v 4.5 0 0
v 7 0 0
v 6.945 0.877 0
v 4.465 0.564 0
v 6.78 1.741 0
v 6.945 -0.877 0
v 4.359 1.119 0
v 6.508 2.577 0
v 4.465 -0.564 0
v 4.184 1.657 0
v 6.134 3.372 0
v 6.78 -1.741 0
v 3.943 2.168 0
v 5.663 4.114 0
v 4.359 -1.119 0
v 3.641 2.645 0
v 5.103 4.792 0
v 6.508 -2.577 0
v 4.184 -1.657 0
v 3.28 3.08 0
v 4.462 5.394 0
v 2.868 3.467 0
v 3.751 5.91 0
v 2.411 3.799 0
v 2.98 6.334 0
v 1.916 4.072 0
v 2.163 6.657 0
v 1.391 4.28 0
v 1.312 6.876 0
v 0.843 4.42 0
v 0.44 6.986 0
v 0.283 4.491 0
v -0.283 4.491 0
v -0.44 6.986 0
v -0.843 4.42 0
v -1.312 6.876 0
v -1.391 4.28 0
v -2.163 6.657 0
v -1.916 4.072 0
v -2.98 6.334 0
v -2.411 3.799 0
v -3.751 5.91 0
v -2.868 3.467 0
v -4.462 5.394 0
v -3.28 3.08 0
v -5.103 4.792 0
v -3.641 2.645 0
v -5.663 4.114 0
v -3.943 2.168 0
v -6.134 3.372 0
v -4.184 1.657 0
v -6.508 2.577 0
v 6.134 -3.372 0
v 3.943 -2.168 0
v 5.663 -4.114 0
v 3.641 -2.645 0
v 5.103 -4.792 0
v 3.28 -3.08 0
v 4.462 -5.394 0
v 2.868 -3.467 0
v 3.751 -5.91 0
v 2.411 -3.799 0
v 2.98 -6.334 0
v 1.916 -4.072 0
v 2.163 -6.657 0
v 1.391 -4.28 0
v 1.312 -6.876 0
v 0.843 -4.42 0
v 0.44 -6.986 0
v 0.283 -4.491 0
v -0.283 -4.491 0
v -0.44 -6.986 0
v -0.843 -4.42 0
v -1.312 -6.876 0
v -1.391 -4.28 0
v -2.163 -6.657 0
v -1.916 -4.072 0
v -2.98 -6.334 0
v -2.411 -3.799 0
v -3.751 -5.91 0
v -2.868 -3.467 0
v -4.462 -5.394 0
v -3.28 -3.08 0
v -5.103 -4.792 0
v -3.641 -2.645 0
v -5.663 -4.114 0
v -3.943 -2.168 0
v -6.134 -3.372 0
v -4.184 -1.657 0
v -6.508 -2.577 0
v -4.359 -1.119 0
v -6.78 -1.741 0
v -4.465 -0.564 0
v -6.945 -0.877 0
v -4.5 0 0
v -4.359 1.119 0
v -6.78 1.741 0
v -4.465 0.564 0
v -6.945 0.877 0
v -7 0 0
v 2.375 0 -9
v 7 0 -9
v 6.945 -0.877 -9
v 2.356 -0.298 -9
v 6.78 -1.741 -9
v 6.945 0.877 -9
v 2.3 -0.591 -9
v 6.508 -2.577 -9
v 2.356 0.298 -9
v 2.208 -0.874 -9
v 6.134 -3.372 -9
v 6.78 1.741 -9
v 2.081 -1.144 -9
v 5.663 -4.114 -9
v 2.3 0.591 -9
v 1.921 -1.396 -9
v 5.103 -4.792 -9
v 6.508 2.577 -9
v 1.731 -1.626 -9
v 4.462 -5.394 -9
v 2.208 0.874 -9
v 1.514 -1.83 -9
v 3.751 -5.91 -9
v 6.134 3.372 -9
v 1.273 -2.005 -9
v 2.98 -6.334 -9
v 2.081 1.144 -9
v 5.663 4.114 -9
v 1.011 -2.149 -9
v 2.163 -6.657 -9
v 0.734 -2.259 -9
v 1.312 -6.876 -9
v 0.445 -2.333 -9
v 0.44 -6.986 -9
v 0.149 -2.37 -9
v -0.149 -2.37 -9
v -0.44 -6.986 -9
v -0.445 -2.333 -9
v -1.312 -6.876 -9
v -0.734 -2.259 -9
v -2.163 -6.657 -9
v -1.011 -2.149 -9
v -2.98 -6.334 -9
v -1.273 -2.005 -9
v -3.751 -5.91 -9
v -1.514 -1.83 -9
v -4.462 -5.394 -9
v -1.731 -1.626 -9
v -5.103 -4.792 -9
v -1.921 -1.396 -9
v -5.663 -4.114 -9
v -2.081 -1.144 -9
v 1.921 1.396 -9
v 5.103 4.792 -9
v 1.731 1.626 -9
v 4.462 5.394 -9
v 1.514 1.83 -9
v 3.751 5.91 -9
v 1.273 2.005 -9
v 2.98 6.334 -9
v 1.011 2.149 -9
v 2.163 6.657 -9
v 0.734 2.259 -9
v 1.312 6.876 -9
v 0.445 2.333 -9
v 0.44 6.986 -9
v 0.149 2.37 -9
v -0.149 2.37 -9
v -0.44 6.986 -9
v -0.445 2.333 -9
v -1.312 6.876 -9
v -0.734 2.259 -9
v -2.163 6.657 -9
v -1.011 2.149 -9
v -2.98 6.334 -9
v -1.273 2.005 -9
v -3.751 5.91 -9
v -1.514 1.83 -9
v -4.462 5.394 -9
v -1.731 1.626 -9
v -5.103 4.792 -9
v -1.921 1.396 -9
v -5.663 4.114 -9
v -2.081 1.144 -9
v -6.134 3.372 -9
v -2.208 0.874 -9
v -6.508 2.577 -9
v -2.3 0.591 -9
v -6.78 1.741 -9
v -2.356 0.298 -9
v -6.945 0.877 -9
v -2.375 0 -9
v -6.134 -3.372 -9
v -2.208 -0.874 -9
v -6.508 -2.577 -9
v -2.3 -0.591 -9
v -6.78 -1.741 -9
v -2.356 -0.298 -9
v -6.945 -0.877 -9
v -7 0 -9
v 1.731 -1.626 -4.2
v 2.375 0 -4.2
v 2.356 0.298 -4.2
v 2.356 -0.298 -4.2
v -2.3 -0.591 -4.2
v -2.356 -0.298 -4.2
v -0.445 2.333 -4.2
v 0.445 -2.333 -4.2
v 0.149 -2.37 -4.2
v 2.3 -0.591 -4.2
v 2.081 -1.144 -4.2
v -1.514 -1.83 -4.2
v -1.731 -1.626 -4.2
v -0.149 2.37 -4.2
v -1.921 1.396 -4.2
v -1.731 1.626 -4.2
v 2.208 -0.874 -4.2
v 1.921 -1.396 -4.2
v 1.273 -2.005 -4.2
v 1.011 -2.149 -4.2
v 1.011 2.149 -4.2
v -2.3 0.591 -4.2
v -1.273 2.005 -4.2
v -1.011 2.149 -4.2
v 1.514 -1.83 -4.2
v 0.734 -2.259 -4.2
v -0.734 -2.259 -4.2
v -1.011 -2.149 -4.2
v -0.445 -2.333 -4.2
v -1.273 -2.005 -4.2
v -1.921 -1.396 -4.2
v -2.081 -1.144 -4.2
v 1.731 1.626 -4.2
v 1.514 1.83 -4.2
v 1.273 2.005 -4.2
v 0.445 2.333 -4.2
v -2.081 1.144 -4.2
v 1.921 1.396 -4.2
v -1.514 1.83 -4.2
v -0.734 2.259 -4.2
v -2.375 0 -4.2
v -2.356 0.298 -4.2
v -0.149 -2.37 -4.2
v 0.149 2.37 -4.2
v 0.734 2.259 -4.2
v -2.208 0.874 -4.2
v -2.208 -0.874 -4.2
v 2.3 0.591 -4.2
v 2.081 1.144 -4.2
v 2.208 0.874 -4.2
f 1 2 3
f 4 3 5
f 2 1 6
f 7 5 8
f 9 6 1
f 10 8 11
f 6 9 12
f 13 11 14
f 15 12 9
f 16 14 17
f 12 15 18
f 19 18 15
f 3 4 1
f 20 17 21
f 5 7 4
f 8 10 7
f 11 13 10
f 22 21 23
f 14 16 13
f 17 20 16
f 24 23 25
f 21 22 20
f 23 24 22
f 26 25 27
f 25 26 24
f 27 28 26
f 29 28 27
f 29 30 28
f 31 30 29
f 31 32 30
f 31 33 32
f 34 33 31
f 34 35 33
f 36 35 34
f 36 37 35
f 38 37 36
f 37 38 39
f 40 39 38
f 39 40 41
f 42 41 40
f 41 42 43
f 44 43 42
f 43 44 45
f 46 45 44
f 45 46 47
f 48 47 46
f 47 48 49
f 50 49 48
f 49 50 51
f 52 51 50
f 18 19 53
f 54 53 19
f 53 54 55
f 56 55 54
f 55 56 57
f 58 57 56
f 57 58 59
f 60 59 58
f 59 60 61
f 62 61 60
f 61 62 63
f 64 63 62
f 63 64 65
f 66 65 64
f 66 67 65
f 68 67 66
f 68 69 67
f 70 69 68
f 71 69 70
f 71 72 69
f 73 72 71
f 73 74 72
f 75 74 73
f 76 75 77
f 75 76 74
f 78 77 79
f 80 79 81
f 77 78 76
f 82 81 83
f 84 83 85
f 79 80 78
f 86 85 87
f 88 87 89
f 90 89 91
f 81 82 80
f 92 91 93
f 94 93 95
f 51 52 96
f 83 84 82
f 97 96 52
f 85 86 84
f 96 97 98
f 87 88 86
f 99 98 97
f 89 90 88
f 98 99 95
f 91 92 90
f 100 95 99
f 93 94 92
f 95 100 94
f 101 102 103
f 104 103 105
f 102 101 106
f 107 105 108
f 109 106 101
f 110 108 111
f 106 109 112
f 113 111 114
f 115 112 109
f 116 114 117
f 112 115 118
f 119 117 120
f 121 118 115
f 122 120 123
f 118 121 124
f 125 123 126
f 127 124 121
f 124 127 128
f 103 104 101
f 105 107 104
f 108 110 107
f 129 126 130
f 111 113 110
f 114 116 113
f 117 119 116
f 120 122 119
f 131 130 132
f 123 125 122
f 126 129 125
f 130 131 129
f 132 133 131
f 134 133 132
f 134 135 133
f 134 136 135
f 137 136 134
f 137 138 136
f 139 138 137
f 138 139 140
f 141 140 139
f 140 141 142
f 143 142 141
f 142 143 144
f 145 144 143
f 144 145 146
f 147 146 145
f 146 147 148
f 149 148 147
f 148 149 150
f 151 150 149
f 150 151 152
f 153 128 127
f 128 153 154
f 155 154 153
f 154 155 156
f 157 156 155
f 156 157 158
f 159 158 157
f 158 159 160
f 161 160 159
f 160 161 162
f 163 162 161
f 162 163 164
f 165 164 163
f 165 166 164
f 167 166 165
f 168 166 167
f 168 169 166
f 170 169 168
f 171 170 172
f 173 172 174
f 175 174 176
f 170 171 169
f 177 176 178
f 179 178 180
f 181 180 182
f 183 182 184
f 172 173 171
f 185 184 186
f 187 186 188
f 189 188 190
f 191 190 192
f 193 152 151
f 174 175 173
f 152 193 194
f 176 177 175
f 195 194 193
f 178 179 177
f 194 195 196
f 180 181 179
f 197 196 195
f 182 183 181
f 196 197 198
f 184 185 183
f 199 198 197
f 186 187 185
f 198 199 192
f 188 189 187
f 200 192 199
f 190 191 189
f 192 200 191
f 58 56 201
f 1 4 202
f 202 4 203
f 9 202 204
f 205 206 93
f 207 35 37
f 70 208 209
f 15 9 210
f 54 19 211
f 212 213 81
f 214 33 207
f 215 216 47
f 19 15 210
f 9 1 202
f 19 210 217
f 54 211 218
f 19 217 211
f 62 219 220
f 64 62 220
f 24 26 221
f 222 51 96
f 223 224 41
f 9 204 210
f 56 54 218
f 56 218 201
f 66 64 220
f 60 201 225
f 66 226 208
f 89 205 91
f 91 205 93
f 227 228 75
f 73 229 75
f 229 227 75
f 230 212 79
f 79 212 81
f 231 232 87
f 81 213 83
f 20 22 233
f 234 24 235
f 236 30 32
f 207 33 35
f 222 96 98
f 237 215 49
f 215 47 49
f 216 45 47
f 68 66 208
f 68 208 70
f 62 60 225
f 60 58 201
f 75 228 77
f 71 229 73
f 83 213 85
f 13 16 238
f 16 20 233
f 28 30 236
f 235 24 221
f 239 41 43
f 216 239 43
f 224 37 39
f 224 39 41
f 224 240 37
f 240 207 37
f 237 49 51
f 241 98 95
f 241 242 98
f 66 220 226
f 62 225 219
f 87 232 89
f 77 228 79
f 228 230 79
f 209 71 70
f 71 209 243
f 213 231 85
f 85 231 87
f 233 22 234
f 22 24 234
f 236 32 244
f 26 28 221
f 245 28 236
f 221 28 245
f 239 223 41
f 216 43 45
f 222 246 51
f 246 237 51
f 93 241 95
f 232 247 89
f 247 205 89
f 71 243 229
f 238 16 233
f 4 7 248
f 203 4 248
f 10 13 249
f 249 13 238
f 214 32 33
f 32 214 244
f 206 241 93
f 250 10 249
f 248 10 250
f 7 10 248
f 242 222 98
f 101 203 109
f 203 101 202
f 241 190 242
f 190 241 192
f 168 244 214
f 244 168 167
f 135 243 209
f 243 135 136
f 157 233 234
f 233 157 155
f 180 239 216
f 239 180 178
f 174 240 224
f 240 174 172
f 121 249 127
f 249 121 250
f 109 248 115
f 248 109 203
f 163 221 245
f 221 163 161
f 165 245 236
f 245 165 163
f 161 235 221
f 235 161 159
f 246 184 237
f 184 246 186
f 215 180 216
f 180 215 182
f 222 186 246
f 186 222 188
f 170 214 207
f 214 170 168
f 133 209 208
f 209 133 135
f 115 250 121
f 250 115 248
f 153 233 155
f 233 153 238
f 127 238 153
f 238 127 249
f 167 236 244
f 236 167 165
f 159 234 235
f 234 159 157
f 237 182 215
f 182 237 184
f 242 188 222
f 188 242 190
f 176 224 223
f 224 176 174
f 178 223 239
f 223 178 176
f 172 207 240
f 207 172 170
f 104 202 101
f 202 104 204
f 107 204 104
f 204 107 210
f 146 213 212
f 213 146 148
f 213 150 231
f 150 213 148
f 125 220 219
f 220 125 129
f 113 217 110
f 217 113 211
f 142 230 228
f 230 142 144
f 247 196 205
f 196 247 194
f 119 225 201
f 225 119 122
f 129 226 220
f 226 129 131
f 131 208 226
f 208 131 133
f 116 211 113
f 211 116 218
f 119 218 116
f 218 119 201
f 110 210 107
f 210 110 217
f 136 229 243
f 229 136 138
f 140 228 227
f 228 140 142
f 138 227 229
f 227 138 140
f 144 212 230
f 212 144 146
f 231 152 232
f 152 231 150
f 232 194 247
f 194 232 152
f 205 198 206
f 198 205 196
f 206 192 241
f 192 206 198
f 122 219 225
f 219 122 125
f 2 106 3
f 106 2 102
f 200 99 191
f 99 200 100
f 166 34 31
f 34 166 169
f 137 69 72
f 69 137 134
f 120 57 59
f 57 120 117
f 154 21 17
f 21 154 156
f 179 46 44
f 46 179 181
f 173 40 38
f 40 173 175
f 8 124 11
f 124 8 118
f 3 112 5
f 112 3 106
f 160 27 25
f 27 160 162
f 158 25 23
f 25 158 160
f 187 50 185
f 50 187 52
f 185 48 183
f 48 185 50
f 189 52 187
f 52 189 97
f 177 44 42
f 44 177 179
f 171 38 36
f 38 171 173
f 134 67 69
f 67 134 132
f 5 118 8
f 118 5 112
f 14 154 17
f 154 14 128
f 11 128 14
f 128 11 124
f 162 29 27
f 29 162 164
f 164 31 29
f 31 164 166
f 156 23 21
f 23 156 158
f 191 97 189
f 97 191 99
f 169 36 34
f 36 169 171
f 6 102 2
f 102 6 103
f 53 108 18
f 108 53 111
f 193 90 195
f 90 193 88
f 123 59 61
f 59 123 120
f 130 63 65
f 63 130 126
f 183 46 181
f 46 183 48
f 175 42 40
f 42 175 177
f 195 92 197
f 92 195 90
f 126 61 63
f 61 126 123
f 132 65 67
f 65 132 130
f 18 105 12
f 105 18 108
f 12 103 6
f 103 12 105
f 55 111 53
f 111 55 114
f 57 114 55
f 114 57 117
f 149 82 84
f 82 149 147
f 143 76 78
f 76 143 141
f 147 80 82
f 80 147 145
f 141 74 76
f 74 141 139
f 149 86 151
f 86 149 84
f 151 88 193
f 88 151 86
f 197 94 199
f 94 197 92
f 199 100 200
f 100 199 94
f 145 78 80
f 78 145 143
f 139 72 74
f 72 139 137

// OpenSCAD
$fn = 50;


difference() {
	union() {
		translate(v = [0, 0, -9.0000000000]) {
			cylinder(h = 9, r = 7.0000000000);
		}
		cylinder(h = 0, r = 10.0000000000);
	}
	union() {
		translate(v = [0, 0, 0]) {
			rotate(a = [0, 0, 0]) {
				difference() {
					union() {
						#translate(v = [0, 0, -9.0000000000]) {
							cylinder(h = 9, r = 2.2500000000);
						}
						#translate(v = [0, 0, -4.2000000000]) {
							cylinder(h = 4.2000000000, r1 = 2.3750000000, r2 = 4.5000000000);
						}
						#translate(v = [0, 0, -9.0000000000]) {
							cylinder(h = 9, r = 2.3750000000);
						}
						#translate(v = [0, 0, -9.0000000000]) {
							cylinder(h = 9, r = 2.2500000000);
						}
					}
					union();
				}
			}
		}
	}
}
